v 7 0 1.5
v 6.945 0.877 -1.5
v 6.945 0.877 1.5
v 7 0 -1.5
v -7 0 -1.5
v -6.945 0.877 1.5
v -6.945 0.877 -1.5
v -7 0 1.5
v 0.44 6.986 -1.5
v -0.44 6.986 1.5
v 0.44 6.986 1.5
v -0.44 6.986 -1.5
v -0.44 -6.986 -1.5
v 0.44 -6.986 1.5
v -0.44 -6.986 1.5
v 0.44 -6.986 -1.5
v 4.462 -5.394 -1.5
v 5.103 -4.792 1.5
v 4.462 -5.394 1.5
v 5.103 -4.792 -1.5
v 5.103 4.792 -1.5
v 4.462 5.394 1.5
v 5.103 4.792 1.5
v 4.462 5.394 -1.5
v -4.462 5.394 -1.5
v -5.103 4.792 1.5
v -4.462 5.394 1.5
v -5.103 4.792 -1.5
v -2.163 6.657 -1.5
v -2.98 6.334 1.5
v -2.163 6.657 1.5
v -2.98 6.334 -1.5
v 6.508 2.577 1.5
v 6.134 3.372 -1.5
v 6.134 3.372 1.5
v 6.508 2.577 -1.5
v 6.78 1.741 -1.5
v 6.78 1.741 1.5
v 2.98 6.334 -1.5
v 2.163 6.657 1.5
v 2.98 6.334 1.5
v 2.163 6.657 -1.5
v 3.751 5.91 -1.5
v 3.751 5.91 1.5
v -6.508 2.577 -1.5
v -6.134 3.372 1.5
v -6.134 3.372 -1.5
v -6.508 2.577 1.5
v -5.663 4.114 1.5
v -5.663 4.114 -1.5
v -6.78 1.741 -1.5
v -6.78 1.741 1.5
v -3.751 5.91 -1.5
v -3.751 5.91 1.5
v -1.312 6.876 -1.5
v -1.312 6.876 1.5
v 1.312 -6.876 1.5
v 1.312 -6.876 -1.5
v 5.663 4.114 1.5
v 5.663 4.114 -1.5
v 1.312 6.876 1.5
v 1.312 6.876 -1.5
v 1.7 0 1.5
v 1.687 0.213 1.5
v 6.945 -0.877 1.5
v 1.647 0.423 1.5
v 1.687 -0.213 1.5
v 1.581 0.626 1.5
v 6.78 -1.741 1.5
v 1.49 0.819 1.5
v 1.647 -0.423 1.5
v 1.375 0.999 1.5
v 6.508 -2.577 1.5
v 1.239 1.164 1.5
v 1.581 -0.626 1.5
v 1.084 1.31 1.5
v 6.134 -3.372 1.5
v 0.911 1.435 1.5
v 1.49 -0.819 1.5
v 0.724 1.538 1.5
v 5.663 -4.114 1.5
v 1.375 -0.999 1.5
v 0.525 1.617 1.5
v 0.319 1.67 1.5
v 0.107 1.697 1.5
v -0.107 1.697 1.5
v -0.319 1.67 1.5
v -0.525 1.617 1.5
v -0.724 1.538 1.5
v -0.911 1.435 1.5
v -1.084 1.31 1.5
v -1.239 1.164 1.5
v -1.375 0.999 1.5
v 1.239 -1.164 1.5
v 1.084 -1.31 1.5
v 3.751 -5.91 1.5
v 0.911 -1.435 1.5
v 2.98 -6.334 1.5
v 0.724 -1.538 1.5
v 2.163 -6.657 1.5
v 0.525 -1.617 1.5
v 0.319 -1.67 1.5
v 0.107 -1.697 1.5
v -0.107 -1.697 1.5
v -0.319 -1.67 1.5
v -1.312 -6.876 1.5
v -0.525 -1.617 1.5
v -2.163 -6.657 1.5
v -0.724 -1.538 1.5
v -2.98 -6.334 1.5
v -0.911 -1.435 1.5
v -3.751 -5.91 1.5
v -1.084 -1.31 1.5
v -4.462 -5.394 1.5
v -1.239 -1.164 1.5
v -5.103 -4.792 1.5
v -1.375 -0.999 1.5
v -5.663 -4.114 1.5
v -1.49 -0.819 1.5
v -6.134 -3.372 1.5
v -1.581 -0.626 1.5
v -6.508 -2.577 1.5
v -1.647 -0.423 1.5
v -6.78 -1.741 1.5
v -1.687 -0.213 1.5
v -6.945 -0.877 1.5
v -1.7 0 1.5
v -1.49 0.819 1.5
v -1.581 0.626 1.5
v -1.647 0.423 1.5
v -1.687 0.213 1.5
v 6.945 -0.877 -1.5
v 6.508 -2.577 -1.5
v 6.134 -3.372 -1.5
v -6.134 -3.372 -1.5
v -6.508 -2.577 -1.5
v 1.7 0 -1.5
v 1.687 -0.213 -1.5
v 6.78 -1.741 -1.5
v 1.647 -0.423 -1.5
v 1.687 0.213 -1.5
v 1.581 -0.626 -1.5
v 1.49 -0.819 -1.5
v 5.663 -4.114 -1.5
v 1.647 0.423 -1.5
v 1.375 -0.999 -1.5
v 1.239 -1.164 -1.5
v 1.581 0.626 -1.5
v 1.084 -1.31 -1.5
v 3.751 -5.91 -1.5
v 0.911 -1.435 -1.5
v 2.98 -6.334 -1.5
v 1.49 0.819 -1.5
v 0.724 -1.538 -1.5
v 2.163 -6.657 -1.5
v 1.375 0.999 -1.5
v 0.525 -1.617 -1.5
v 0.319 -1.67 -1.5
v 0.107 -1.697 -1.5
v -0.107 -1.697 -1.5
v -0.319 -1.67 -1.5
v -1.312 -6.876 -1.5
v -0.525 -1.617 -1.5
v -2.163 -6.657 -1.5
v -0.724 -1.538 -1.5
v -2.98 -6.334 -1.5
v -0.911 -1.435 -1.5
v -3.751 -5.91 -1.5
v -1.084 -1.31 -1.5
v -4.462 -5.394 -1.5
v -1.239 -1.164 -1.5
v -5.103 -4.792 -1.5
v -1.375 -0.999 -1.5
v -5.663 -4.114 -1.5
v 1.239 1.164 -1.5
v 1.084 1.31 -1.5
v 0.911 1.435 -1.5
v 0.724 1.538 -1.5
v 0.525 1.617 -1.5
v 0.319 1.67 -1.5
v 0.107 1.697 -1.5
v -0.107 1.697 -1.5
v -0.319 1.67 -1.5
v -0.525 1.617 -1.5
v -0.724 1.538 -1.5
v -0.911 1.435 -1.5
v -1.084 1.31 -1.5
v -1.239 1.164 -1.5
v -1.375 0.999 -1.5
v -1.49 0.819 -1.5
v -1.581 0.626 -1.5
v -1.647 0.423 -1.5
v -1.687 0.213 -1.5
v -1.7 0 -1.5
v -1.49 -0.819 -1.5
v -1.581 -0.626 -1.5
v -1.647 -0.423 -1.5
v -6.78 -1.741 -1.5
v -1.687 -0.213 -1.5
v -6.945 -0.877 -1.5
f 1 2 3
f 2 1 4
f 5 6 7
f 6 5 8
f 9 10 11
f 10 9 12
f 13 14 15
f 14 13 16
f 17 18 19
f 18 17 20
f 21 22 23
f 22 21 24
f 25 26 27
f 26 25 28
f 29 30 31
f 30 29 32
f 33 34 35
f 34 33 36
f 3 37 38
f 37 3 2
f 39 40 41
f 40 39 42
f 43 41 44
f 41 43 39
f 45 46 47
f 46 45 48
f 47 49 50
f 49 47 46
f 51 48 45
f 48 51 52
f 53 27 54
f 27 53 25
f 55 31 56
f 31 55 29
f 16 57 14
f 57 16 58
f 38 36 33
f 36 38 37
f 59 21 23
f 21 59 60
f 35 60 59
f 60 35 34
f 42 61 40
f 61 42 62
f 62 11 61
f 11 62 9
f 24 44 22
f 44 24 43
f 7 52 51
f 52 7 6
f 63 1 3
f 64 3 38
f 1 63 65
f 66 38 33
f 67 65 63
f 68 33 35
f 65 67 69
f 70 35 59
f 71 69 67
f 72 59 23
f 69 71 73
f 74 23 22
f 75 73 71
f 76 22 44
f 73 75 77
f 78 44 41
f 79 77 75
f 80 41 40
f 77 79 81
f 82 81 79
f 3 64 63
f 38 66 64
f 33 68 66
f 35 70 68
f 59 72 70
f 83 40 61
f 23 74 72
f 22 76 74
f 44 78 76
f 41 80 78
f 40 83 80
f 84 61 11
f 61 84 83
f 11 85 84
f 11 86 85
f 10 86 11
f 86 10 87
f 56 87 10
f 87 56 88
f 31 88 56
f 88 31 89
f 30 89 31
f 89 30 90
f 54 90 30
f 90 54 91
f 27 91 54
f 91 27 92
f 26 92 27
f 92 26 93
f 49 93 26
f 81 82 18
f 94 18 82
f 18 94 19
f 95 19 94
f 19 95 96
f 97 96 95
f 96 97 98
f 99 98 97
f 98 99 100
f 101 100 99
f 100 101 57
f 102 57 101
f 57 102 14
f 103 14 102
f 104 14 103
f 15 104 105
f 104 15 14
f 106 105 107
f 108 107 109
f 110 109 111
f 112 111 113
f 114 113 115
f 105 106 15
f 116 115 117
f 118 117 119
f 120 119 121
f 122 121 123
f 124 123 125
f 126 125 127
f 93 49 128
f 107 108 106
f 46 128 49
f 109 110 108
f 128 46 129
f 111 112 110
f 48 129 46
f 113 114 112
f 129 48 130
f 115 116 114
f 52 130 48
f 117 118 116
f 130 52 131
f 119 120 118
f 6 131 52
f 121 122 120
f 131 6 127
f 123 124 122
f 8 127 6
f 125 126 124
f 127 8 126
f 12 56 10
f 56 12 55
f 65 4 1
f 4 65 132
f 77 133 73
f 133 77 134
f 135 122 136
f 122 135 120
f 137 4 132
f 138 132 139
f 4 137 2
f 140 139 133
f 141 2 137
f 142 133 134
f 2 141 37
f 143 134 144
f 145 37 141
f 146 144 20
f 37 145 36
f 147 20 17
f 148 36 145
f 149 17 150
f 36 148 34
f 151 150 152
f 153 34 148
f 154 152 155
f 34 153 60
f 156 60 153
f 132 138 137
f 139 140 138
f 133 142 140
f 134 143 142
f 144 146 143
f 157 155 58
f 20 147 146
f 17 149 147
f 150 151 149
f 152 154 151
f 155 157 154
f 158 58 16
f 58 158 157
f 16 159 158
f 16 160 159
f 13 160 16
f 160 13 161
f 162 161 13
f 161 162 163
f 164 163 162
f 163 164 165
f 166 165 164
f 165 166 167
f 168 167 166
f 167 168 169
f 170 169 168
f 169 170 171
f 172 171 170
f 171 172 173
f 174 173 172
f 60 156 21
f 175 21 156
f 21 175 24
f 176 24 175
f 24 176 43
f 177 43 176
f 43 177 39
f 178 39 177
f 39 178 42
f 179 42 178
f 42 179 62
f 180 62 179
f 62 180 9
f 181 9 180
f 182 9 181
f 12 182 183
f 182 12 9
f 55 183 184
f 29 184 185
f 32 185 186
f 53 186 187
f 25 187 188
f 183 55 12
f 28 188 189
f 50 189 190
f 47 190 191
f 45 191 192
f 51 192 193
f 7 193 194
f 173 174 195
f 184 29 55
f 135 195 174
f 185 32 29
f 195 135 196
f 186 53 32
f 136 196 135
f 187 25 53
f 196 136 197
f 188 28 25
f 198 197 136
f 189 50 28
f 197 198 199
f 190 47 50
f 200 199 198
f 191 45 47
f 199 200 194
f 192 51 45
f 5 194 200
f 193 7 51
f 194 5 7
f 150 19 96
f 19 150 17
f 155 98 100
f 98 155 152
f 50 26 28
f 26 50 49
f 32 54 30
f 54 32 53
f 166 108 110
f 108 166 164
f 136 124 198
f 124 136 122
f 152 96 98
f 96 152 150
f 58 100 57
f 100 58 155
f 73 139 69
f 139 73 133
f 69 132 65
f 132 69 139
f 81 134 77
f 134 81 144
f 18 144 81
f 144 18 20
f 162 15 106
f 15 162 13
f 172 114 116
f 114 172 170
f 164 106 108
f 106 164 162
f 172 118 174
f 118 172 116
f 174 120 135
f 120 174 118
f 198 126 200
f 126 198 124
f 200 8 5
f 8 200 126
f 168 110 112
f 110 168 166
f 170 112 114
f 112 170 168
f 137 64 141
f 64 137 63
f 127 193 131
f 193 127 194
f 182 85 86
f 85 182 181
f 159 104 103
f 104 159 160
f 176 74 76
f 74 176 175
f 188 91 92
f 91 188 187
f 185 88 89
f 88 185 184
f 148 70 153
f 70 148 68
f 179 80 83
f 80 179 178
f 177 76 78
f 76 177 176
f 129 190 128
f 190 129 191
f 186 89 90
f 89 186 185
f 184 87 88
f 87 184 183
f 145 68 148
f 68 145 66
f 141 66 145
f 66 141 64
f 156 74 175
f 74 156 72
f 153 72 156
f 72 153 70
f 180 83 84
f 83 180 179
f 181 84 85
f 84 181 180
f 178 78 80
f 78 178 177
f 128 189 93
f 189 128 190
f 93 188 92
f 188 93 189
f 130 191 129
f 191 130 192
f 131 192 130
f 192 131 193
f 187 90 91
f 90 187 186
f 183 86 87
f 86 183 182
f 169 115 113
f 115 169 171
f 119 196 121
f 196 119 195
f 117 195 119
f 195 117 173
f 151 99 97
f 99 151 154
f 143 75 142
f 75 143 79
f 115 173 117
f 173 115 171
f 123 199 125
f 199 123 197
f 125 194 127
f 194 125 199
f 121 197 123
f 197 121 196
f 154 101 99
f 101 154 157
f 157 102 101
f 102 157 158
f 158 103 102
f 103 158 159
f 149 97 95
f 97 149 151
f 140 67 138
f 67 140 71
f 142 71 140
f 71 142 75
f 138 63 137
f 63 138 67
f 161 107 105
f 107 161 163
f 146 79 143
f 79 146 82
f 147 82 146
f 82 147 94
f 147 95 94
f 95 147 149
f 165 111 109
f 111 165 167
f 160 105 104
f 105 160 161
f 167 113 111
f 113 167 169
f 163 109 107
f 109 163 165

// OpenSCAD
$fn = 50;


difference() {
	union() {
		translate(v = [0, 0, -1.5000000000]) {
			rotate(a = [0, 0, 0]) {
				cylinder(h = 3, r = 7.0000000000);
			}
		}
		translate(v = [0, 0, -1.5000000000]) {
			rotate(a = [0, 0, 0]) {
				cylinder(h = 3, r = 2.8500000000);
			}
		}
	}
	union() {
		translate(v = [0, 0, -125.0000000000]) {
			rotate(a = [0, 0, 0]) {
				cylinder(h = 250, r = 1.7000000000);
			}
		}
	}
}
